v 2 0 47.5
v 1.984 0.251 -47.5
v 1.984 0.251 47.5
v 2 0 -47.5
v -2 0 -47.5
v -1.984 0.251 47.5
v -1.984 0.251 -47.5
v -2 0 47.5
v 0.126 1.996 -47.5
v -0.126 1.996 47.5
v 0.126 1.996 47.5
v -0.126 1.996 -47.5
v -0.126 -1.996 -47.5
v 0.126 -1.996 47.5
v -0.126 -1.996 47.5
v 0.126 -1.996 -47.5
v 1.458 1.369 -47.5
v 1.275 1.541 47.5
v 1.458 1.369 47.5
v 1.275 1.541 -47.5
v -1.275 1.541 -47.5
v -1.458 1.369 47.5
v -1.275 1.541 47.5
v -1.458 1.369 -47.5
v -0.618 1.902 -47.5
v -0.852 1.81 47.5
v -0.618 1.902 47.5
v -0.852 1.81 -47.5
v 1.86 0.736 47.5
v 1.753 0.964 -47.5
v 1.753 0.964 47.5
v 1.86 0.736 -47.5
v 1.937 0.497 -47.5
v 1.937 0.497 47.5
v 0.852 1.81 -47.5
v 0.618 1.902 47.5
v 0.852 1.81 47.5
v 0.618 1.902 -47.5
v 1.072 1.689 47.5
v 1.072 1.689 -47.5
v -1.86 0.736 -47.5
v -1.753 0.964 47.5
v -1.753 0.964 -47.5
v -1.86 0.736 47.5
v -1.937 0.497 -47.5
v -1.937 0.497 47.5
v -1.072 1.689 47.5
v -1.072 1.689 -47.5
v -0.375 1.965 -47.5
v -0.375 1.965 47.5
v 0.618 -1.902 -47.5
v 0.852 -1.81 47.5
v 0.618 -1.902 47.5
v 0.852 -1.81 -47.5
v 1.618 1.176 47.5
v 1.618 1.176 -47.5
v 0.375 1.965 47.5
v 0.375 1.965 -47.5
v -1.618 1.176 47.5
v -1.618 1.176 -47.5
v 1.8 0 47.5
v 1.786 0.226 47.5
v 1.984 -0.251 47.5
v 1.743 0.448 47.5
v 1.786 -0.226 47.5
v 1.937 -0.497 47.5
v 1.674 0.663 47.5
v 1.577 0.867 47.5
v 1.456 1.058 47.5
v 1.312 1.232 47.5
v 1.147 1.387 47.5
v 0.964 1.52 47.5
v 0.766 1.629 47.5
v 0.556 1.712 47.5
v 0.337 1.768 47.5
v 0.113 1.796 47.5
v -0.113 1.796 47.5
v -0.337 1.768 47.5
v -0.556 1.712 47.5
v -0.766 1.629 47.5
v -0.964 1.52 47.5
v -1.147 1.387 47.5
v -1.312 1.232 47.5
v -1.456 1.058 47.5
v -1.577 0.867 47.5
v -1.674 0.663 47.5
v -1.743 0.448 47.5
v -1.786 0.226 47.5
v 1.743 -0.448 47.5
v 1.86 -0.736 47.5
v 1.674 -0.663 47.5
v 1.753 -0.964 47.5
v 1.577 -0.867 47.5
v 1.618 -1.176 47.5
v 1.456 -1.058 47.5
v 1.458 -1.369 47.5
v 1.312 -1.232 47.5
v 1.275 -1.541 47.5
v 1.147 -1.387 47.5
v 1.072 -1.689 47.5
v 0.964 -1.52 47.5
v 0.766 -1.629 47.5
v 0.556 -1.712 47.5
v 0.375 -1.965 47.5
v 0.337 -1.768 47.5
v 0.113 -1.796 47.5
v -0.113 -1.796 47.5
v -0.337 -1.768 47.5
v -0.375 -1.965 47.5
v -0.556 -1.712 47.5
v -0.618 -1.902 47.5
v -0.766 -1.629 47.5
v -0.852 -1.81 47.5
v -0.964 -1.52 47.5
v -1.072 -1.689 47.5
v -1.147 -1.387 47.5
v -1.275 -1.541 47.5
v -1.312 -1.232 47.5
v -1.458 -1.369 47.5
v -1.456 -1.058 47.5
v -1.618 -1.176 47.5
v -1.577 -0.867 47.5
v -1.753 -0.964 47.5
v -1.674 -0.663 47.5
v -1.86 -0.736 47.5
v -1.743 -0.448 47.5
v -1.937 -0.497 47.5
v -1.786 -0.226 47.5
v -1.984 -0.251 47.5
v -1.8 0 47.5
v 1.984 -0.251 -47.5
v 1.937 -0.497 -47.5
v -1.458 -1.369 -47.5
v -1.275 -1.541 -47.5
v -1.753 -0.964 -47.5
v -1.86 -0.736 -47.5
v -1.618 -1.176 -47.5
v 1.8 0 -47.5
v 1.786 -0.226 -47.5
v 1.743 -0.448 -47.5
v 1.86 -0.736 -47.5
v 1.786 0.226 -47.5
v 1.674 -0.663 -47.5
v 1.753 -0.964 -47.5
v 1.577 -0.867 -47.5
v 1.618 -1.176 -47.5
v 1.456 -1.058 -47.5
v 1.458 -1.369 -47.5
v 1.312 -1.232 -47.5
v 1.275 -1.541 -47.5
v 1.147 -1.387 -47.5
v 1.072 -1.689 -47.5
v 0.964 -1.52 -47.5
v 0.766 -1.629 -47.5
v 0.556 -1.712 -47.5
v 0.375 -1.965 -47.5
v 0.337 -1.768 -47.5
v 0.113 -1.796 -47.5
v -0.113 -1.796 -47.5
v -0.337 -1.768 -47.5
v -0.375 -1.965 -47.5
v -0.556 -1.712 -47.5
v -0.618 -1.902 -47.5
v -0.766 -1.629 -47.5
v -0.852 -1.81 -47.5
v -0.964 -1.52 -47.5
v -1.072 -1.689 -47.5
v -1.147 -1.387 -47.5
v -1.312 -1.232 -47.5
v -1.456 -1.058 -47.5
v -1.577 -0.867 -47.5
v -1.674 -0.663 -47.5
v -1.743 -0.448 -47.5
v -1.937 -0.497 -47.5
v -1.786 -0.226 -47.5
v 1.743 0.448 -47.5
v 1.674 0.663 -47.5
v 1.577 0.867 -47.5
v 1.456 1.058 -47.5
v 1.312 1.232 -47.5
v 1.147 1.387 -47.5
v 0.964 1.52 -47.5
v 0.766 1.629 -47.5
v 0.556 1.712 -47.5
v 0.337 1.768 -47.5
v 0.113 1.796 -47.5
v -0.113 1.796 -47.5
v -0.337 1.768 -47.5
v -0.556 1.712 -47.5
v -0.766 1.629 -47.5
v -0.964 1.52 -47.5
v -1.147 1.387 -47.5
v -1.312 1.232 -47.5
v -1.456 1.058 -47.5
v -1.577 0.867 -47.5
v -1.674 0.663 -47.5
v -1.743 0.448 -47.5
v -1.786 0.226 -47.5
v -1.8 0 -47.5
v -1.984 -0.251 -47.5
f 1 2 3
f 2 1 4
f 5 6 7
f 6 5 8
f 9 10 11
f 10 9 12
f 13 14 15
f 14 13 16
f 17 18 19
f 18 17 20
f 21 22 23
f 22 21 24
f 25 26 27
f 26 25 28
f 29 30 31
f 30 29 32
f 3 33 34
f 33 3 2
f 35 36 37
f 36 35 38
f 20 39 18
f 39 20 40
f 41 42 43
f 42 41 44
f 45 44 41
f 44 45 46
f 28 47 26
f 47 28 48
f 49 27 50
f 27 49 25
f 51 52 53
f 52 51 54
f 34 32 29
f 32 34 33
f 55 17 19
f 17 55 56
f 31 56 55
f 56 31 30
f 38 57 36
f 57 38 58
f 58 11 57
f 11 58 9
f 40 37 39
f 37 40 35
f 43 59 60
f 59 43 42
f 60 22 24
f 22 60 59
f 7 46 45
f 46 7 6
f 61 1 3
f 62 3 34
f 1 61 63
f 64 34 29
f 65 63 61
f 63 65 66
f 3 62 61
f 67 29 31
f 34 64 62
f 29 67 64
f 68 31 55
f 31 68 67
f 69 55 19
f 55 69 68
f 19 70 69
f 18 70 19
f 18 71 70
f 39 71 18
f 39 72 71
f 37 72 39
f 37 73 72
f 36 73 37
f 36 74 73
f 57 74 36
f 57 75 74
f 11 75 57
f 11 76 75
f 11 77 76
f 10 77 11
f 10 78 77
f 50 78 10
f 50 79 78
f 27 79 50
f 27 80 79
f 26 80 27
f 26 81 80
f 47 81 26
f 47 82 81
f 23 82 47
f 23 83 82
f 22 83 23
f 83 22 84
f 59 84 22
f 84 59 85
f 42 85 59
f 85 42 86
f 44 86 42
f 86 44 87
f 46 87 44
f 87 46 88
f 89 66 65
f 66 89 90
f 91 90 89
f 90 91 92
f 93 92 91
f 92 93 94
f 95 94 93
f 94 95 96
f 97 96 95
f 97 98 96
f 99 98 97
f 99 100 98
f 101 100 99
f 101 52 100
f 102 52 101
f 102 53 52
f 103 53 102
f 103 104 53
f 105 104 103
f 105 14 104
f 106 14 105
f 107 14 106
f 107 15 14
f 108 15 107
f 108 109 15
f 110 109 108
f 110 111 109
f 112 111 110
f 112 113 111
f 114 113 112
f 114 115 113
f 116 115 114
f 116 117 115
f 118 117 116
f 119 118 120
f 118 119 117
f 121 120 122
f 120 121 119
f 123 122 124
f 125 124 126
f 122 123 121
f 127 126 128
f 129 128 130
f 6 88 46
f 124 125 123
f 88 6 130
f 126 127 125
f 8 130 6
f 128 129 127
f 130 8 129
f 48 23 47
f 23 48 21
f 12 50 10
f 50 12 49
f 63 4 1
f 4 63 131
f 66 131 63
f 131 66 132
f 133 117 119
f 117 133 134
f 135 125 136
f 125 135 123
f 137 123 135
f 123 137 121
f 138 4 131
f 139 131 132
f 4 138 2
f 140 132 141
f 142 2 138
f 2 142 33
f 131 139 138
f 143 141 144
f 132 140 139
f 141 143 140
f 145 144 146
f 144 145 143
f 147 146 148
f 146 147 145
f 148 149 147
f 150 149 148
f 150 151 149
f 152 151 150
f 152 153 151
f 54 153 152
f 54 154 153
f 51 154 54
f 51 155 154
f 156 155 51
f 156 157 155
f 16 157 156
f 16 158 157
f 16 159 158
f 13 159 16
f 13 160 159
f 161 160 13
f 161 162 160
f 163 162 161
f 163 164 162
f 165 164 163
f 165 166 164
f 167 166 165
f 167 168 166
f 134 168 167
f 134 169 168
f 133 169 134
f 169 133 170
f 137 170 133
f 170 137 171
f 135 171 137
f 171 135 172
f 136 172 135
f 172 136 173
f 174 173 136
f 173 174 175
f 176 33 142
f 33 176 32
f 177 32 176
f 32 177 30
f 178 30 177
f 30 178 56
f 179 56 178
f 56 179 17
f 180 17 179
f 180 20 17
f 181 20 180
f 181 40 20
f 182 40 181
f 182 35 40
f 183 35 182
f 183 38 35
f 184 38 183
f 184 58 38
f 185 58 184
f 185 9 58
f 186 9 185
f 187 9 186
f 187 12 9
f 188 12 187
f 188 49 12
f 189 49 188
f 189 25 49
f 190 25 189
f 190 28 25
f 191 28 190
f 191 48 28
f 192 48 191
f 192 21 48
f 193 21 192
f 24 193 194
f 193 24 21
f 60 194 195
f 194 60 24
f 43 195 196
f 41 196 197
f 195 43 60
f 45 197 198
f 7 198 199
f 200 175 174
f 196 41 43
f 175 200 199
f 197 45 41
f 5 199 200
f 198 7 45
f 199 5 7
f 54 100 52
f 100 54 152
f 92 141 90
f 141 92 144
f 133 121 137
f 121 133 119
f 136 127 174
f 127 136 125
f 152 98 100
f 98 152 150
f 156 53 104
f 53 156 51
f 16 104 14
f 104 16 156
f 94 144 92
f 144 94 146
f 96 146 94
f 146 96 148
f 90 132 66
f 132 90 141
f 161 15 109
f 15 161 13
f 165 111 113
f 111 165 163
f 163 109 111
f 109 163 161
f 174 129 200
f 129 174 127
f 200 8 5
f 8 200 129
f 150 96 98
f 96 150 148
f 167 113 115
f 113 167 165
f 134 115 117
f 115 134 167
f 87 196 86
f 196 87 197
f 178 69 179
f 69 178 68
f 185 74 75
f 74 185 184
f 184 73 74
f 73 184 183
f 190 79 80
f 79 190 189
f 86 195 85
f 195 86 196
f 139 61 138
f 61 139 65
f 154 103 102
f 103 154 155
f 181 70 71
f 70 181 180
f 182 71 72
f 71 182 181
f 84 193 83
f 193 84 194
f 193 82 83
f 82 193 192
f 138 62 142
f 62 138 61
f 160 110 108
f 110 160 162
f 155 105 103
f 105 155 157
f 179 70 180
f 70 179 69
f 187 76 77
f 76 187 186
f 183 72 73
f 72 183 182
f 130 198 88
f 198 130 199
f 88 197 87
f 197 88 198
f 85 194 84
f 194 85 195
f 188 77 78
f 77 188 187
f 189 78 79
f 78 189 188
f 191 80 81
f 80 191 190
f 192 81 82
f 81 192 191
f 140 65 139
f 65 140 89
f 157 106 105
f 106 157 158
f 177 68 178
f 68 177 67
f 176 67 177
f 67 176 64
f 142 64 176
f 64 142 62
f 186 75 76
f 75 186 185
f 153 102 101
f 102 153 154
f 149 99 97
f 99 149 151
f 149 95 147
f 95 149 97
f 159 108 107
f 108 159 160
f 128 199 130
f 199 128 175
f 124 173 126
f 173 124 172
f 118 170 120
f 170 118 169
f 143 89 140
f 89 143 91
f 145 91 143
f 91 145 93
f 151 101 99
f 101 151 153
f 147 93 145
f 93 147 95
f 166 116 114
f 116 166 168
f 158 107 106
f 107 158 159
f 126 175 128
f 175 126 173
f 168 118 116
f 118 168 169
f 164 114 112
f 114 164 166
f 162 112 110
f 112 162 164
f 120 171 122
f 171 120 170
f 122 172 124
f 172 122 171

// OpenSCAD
$fn = 50;


difference() {
	union() {
		translate(v = [0, 0, -47.5000000000]) {
			cylinder(h = 95, r = 2.0000000000);
		}
	}
	union() {
		translate(v = [0, 0, -100.0000000000]) {
			cylinder(h = 200, r = 1.8000000000);
		}
	}
}
